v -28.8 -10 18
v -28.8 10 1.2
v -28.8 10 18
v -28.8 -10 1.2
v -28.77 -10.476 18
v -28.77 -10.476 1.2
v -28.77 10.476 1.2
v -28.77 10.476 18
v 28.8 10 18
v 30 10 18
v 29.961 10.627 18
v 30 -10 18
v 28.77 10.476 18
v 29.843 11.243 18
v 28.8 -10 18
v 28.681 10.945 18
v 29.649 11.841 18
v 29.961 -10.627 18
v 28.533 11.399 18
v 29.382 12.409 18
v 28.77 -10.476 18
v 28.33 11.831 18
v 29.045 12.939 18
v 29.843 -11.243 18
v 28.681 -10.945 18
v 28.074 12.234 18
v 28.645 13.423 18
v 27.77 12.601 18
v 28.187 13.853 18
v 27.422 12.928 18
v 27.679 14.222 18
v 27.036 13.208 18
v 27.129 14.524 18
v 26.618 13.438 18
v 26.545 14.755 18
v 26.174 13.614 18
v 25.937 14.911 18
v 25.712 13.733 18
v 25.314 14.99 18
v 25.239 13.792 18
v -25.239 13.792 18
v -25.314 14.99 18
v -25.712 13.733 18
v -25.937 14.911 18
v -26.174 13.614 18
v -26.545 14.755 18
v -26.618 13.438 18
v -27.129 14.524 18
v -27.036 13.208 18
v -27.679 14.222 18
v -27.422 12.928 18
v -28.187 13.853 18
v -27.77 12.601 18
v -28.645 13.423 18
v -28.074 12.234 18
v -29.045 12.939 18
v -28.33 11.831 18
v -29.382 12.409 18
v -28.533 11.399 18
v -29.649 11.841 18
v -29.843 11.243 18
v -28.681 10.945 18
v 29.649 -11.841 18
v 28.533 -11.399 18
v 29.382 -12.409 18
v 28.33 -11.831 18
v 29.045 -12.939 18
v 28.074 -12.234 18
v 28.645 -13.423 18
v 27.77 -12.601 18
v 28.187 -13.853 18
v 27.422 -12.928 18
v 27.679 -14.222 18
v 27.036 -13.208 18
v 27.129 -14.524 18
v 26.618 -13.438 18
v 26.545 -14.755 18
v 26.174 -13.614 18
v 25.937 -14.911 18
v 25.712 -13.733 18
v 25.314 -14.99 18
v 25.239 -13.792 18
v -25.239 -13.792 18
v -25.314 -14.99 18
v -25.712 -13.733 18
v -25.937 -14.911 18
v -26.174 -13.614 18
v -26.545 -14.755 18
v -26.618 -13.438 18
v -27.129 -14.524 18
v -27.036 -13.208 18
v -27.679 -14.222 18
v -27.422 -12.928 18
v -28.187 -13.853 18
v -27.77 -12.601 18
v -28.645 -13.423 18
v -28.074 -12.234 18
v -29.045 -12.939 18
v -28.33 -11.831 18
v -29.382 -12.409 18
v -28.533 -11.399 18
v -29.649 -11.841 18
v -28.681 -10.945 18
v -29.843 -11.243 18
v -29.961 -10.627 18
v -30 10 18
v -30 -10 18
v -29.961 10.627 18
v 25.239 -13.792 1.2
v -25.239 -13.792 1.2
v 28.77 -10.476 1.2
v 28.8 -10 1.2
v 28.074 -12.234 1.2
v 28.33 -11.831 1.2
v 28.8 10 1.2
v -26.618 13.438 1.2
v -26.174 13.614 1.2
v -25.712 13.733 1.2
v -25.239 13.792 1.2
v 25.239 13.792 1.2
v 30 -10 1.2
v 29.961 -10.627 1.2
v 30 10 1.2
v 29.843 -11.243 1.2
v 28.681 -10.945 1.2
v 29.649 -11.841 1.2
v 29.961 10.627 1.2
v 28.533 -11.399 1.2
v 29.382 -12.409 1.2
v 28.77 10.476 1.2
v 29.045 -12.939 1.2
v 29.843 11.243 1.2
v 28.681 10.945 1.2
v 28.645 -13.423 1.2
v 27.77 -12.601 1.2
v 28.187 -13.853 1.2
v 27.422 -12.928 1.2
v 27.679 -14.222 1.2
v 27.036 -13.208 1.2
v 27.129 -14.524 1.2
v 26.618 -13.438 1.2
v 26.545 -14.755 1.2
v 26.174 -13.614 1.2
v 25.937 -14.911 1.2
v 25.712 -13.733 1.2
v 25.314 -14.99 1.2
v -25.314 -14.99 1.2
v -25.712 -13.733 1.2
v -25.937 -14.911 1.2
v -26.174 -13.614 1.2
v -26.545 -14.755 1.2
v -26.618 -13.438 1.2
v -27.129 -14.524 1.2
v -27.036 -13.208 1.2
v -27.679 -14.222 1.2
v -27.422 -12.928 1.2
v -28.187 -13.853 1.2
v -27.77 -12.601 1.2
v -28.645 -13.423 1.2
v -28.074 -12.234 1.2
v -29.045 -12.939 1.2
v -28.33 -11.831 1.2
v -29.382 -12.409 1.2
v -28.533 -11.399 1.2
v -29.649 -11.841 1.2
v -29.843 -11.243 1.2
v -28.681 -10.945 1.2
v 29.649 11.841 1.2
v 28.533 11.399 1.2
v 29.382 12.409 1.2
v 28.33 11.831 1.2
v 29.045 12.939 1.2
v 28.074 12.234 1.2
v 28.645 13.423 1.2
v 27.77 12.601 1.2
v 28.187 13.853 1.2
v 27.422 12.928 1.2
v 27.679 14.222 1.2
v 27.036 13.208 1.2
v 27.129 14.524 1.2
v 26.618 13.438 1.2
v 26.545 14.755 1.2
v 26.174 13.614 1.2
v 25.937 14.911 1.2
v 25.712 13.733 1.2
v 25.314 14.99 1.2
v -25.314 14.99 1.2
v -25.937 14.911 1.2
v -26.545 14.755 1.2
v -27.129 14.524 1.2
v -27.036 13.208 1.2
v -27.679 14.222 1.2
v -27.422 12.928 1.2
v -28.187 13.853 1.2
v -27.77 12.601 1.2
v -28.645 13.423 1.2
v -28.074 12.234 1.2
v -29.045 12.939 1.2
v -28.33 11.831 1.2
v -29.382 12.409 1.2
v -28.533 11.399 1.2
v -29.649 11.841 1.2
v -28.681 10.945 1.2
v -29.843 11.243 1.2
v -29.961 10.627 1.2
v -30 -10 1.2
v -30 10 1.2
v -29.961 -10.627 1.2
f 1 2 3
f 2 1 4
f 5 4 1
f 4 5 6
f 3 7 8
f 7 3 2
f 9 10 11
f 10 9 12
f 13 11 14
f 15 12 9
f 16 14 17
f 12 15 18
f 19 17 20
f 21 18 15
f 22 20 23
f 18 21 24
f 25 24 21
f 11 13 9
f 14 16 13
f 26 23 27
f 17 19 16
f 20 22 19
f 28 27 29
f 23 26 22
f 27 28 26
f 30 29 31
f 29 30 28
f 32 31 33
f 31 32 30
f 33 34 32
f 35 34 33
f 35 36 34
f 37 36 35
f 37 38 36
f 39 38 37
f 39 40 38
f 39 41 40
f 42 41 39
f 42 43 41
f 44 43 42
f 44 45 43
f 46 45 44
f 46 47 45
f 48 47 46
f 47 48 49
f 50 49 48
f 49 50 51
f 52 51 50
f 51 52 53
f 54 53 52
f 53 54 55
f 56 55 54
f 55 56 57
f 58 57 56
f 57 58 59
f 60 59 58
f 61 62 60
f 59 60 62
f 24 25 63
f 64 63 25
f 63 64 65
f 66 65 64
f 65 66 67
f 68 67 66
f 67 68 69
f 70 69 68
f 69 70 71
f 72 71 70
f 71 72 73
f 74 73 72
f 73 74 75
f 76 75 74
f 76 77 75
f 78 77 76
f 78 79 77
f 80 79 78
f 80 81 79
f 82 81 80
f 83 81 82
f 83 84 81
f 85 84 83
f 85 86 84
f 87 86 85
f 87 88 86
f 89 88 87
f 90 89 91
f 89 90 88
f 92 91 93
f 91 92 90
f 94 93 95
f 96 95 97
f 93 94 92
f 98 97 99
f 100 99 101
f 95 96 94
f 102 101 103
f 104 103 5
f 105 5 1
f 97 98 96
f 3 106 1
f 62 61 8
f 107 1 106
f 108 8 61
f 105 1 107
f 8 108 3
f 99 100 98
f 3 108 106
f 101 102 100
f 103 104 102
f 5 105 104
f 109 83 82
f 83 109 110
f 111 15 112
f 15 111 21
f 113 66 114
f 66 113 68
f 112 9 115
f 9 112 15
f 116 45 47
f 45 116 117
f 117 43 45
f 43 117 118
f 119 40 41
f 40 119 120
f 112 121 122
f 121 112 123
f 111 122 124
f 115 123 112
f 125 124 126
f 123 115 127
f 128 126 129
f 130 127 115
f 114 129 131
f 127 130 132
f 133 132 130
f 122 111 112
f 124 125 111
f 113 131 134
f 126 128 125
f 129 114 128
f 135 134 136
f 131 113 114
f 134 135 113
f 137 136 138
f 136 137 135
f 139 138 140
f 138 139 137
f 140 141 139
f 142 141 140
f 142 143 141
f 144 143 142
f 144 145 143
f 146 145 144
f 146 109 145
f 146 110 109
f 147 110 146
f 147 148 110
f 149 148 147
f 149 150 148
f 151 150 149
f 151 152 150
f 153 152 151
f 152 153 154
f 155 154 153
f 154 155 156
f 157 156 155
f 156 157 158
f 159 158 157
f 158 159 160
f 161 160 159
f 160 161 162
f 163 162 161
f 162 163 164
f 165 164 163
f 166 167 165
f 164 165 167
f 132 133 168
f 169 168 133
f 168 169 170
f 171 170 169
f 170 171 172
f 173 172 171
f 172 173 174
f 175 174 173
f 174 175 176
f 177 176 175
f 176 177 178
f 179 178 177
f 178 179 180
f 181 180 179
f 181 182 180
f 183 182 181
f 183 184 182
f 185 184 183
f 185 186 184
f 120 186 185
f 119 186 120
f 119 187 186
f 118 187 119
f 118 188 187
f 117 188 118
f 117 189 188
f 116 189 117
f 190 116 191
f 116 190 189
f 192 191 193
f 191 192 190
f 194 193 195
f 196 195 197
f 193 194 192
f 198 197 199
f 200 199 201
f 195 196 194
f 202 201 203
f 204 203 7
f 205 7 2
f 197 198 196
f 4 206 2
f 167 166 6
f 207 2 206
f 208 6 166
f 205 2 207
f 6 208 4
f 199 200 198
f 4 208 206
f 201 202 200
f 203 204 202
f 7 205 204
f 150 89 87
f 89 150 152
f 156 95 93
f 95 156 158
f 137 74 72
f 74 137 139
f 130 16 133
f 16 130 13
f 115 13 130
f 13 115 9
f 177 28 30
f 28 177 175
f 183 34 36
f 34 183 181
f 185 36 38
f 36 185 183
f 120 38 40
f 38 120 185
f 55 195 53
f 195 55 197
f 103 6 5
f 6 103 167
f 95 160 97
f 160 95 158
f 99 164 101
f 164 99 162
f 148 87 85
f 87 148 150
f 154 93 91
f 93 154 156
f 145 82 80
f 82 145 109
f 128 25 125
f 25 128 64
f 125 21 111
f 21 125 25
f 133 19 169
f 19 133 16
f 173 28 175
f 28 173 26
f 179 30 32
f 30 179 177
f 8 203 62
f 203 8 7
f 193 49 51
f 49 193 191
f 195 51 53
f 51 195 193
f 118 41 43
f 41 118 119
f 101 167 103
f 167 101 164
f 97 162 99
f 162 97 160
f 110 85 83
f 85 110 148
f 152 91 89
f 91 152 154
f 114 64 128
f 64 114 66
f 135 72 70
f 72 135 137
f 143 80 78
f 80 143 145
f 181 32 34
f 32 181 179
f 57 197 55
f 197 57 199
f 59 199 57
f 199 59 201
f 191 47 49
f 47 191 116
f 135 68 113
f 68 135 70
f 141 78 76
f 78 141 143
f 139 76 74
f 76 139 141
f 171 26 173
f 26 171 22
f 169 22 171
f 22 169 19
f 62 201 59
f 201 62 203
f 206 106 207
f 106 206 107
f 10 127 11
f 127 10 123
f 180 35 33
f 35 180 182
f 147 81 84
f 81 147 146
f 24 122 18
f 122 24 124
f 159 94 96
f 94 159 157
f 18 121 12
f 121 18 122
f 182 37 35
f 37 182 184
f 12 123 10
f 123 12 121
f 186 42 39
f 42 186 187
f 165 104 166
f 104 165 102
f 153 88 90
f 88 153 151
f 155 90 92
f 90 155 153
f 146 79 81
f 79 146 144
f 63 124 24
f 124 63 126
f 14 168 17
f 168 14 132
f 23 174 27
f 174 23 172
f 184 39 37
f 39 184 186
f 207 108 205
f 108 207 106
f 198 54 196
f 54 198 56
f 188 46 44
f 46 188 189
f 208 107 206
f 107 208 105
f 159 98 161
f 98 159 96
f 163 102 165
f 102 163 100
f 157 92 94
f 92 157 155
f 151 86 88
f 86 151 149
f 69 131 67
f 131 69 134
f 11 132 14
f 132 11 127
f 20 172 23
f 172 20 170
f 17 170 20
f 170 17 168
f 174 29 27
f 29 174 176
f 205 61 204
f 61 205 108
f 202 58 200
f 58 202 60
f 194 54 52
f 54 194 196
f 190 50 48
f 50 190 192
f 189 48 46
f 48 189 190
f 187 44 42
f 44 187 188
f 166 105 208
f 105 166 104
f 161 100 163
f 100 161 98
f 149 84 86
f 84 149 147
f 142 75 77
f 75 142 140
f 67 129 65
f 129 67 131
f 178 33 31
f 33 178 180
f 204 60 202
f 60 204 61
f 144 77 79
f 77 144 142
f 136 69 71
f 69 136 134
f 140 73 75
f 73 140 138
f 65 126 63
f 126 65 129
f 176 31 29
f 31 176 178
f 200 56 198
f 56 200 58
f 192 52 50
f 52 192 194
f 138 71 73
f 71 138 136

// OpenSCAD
$fn = 50;


difference() {
	union() {
		hull() {
			translate(v = [-25.0000000000, 10.0000000000, 0]) {
				cylinder(h = 18, r = 5);
			}
			translate(v = [25.0000000000, 10.0000000000, 0]) {
				cylinder(h = 18, r = 5);
			}
			translate(v = [-25.0000000000, -10.0000000000, 0]) {
				cylinder(h = 18, r = 5);
			}
			translate(v = [25.0000000000, -10.0000000000, 0]) {
				cylinder(h = 18, r = 5);
			}
		}
	}
	union() {
		translate(v = [0, 0, 1.2000000000]) {
			hull() {
				translate(v = [-25.0000000000, 10.0000000000, 0]) {
					cylinder(h = 16.8000000000, r = 3.8000000000);
				}
				translate(v = [25.0000000000, 10.0000000000, 0]) {
					cylinder(h = 16.8000000000, r = 3.8000000000);
				}
				translate(v = [-25.0000000000, -10.0000000000, 0]) {
					cylinder(h = 16.8000000000, r = 3.8000000000);
				}
				translate(v = [25.0000000000, -10.0000000000, 0]) {
					cylinder(h = 16.8000000000, r = 3.8000000000);
				}
			}
		}
		#translate(v = [-15.0000000000, 0.0000000000, 0]) {
			cylinder(h = 1.2000000000, r = 1.8000000000);
		}
		#translate(v = [15.0000000000, 0.0000000000, 0]) {
			cylinder(h = 1.2000000000, r = 1.8000000000);
		}
		translate(v = [-250.0000000000, -250.0000000000, -498.8000000000]) {
			cube(size = [500, 500, 500]);
		}
		translate(v = [-250.0000000000, -250.0000000000, -498.8000000000]) {
			cube(size = [500, 500, 500]);
		}
		translate(v = [-250.0000000000, -250.0000000000, -498.8000000000]) {
			cube(size = [500, 500, 500]);
		}
	}
}
